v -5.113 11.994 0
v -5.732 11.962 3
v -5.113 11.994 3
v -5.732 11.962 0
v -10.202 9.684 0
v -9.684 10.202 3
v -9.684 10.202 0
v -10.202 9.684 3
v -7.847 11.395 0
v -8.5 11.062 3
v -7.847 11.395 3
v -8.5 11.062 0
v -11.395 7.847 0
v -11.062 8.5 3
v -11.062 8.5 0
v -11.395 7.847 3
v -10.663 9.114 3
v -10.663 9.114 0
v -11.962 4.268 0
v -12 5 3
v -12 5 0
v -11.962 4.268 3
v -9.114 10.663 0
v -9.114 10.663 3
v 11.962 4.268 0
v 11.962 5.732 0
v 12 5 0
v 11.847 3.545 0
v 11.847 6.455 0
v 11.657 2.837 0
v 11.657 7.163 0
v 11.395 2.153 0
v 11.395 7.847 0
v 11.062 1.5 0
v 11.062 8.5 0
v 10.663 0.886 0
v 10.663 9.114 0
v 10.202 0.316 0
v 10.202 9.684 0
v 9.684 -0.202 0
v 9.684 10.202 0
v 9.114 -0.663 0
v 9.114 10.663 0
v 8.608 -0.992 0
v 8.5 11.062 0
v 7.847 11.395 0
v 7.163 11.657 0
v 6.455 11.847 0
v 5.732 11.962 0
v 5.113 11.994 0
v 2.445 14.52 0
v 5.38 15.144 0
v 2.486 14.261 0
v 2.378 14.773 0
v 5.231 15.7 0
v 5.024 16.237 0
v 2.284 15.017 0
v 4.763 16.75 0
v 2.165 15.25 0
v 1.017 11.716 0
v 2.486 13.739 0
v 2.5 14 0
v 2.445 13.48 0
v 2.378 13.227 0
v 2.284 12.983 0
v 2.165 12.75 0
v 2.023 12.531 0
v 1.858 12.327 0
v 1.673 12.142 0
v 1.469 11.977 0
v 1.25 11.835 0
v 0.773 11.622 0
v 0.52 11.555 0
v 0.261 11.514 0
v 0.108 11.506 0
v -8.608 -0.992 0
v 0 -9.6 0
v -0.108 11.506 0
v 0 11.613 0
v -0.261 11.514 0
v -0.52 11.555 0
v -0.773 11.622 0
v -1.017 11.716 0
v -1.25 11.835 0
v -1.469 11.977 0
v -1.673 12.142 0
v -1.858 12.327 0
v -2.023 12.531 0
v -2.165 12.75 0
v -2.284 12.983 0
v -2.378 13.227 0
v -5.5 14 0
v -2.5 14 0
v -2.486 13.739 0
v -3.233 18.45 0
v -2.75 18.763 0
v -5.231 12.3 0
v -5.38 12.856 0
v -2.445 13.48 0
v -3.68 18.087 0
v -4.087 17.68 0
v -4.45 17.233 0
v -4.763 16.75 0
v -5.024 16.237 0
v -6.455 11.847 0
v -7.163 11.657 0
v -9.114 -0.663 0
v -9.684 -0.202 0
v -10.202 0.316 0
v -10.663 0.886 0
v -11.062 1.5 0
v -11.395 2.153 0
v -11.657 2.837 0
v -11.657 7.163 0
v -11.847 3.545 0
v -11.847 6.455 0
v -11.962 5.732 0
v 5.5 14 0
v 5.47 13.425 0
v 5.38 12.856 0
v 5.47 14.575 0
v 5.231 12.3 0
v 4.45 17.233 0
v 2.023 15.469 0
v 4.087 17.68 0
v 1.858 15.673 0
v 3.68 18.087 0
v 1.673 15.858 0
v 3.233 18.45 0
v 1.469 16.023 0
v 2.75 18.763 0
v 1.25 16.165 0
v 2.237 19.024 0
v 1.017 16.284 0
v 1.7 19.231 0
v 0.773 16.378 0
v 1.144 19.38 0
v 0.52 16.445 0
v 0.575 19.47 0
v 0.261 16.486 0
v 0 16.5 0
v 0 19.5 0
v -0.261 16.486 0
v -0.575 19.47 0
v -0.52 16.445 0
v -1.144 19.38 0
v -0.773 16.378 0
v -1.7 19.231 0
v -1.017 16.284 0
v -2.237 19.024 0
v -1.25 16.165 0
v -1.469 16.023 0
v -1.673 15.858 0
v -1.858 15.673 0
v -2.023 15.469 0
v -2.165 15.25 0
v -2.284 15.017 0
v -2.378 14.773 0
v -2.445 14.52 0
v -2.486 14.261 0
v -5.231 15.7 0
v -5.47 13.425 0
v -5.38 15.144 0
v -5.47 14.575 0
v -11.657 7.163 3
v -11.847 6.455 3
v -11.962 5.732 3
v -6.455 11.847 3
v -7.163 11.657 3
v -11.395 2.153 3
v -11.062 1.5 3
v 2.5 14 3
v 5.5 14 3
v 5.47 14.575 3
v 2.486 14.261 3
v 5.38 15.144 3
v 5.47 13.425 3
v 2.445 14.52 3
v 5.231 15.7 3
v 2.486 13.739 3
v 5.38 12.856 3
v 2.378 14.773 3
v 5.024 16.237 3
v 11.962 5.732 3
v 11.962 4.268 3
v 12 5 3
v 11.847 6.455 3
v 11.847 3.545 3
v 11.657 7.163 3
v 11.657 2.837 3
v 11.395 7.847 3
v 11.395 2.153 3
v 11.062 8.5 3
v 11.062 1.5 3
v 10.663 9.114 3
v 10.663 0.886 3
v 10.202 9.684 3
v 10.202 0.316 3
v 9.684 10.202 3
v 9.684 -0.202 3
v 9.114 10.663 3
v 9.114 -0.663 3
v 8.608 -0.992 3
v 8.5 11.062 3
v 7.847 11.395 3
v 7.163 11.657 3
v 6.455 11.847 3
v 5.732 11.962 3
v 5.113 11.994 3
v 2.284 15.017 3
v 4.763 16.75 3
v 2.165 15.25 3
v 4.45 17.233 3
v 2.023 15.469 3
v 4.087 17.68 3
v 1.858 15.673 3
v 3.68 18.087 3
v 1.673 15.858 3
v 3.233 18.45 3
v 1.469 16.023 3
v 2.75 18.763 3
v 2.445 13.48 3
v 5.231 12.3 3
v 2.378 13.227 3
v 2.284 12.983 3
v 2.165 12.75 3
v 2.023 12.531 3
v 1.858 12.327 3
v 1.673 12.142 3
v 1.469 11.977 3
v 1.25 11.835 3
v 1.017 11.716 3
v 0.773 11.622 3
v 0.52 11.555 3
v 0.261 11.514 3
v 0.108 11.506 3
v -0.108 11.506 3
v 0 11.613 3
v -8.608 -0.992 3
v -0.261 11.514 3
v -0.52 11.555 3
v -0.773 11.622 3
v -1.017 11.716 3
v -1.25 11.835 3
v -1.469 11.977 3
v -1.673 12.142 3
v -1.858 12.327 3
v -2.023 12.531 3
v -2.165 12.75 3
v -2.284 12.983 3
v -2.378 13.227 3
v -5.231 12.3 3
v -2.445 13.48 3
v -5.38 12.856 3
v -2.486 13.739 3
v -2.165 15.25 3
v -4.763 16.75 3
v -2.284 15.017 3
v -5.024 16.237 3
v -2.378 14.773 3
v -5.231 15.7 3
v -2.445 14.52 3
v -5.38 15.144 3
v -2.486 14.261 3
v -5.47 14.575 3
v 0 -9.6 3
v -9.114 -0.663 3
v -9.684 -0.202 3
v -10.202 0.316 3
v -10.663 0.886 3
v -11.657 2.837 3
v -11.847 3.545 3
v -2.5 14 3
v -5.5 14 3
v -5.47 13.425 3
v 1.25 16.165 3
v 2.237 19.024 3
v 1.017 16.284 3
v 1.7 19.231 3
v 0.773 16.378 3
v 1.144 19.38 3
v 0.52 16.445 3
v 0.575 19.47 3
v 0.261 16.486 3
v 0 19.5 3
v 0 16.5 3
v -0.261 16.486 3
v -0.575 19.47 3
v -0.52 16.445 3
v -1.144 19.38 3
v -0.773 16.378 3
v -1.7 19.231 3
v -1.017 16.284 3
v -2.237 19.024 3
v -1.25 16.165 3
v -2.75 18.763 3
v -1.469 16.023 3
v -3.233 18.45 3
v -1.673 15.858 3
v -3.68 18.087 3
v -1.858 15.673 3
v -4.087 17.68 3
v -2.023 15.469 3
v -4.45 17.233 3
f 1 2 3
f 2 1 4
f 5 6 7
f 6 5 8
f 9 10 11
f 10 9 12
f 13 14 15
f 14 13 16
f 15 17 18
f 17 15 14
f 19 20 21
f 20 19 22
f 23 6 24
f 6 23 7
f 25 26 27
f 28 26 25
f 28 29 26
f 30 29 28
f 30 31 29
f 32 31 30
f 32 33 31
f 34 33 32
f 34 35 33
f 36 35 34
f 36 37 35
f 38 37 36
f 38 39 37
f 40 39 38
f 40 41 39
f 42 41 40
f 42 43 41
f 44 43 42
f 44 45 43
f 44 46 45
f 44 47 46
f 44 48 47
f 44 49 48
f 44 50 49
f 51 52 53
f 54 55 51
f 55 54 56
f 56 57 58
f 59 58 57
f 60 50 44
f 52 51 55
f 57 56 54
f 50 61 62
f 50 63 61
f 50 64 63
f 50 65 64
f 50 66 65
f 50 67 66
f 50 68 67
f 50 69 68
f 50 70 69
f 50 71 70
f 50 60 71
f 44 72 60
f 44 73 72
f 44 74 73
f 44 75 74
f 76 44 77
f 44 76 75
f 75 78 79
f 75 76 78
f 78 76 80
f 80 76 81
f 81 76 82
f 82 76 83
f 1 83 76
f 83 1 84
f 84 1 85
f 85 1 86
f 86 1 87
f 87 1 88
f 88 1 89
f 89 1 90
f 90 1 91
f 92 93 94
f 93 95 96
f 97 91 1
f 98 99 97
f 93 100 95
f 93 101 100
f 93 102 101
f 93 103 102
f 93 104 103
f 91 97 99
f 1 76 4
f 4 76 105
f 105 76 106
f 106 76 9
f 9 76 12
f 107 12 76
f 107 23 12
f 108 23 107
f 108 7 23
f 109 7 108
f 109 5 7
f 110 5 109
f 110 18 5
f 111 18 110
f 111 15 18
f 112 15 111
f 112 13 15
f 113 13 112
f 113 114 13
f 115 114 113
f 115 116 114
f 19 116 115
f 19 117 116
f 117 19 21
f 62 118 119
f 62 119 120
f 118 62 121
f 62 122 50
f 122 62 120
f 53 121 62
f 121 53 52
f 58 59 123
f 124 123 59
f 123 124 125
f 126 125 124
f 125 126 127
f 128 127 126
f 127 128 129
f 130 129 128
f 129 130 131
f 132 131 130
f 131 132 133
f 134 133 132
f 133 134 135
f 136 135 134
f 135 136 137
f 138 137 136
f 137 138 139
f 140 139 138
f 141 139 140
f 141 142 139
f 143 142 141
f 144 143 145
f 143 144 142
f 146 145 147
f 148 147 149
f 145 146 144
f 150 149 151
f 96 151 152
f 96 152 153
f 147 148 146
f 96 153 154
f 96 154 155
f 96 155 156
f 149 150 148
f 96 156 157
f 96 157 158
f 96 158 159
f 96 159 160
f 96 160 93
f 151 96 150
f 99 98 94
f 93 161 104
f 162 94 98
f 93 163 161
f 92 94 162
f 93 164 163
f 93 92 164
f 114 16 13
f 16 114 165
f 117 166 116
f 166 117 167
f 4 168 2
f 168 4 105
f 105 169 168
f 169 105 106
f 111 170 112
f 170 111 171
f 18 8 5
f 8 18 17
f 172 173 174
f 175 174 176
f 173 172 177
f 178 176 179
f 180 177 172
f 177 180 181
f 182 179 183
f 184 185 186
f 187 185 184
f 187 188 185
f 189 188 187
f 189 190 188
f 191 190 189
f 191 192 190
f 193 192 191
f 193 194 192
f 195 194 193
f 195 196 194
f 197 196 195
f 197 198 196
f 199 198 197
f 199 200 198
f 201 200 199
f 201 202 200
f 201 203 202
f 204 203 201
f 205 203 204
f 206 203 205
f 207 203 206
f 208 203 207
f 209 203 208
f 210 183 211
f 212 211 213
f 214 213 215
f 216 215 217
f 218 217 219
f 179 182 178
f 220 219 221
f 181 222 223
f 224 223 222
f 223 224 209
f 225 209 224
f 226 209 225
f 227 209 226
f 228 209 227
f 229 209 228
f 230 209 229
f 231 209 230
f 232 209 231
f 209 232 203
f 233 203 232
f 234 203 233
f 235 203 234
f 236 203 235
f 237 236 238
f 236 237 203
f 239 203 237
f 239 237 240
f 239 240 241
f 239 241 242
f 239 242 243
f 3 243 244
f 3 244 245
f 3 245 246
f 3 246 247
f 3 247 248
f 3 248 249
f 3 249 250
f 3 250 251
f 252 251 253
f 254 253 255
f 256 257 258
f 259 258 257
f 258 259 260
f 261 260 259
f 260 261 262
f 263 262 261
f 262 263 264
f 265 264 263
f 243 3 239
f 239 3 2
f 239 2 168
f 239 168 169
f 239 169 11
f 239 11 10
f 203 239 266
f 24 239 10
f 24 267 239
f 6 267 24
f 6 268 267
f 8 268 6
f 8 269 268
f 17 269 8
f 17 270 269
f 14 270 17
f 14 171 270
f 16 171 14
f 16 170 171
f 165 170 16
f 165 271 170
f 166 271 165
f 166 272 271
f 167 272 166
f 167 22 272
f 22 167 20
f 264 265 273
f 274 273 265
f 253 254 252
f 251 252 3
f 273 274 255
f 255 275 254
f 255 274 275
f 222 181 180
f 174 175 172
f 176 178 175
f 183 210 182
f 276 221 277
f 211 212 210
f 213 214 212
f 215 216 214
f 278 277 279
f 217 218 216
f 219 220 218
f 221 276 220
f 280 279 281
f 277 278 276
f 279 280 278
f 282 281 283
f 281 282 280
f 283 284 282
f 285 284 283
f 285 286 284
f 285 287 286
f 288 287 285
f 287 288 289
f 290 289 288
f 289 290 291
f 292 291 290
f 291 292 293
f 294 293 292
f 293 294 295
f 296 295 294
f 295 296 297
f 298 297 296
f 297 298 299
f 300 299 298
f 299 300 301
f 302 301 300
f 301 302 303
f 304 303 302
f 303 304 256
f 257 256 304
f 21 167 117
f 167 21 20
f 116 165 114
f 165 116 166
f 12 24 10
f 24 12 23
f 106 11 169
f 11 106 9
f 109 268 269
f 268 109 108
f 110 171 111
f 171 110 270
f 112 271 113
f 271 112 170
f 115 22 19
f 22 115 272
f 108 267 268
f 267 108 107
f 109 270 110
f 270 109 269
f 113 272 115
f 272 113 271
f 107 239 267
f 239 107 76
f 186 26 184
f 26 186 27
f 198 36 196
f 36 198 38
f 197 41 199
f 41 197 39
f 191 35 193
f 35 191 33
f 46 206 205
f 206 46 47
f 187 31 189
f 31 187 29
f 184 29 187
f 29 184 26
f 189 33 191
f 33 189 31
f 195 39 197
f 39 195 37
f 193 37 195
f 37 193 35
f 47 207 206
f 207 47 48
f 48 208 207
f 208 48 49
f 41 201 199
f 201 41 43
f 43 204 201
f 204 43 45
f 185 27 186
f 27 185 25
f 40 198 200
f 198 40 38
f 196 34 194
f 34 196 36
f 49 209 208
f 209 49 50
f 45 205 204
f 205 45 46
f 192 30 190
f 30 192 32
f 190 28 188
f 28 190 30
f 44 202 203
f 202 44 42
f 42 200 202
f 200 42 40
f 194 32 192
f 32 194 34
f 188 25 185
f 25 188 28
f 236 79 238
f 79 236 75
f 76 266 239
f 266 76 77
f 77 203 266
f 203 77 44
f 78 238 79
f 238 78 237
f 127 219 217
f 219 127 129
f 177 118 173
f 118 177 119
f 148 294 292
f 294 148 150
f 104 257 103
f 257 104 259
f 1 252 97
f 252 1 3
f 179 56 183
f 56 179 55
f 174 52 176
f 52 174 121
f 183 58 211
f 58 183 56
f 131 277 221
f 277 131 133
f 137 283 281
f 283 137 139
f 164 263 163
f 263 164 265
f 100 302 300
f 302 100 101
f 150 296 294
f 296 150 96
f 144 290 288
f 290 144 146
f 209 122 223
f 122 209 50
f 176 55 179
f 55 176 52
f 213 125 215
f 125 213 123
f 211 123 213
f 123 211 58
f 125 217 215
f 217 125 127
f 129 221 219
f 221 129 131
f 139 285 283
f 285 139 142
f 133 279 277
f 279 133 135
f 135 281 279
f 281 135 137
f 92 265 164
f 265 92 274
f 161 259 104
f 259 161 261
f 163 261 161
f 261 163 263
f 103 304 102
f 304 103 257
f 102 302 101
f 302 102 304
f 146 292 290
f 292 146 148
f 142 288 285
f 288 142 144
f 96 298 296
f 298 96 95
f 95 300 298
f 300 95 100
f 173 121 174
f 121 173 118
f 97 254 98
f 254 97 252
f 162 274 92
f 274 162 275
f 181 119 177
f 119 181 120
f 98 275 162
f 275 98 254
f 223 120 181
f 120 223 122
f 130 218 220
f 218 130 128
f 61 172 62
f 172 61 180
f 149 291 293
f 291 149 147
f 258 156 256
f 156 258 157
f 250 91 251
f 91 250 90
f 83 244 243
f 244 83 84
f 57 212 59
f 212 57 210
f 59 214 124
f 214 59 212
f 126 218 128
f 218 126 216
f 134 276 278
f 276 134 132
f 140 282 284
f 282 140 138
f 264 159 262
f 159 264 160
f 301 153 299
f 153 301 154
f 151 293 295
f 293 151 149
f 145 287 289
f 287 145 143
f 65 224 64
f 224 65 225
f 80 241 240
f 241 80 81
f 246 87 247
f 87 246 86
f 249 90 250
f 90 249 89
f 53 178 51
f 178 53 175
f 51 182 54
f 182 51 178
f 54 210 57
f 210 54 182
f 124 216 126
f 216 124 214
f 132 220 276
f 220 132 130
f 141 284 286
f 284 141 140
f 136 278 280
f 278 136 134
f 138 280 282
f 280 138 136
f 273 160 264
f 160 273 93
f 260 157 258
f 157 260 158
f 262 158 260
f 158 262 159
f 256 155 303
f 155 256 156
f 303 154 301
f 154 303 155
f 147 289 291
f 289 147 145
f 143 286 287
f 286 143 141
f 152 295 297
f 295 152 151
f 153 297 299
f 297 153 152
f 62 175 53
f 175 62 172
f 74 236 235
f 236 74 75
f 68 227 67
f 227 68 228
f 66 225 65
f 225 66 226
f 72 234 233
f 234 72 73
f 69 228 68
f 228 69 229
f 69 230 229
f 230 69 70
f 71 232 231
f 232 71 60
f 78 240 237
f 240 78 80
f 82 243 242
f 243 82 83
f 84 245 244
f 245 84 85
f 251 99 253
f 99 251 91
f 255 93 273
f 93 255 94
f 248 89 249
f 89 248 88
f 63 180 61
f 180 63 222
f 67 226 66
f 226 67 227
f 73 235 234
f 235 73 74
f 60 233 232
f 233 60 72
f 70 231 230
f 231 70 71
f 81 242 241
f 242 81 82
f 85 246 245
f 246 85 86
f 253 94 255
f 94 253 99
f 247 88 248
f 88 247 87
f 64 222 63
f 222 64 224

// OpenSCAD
$fn = 60;
altura = 3;

module coracao_base_cubo() {
    union() {
        // As duas metades superiores (arredondadas para formar o topo do coração)
        translate([-5, 5, 0]) cylinder(h = altura, r = 7);
        translate([5, 5, 0]) cylinder(h = altura, r = 7);
        
        // O Bico: um cubo rodado a 45 graus para criar uma ponta geométrica
        translate([0, -9.60, 0]) 
        rotate([0, 0, 45]) 
        cube([15, 15, altura], center = false);
    }
}

// Junta a forma com a argola física
union() {
    coracao_base_cubo();
    
    // Argola integrada no topo (também com aspeto robusto)
    translate([0, 14, 0]) 
    difference() {
        cylinder(h = 3, r = 5.5);
        translate([0, 0, -1]) cylinder(h = altura + 2, r = 2.5);
    }
}
